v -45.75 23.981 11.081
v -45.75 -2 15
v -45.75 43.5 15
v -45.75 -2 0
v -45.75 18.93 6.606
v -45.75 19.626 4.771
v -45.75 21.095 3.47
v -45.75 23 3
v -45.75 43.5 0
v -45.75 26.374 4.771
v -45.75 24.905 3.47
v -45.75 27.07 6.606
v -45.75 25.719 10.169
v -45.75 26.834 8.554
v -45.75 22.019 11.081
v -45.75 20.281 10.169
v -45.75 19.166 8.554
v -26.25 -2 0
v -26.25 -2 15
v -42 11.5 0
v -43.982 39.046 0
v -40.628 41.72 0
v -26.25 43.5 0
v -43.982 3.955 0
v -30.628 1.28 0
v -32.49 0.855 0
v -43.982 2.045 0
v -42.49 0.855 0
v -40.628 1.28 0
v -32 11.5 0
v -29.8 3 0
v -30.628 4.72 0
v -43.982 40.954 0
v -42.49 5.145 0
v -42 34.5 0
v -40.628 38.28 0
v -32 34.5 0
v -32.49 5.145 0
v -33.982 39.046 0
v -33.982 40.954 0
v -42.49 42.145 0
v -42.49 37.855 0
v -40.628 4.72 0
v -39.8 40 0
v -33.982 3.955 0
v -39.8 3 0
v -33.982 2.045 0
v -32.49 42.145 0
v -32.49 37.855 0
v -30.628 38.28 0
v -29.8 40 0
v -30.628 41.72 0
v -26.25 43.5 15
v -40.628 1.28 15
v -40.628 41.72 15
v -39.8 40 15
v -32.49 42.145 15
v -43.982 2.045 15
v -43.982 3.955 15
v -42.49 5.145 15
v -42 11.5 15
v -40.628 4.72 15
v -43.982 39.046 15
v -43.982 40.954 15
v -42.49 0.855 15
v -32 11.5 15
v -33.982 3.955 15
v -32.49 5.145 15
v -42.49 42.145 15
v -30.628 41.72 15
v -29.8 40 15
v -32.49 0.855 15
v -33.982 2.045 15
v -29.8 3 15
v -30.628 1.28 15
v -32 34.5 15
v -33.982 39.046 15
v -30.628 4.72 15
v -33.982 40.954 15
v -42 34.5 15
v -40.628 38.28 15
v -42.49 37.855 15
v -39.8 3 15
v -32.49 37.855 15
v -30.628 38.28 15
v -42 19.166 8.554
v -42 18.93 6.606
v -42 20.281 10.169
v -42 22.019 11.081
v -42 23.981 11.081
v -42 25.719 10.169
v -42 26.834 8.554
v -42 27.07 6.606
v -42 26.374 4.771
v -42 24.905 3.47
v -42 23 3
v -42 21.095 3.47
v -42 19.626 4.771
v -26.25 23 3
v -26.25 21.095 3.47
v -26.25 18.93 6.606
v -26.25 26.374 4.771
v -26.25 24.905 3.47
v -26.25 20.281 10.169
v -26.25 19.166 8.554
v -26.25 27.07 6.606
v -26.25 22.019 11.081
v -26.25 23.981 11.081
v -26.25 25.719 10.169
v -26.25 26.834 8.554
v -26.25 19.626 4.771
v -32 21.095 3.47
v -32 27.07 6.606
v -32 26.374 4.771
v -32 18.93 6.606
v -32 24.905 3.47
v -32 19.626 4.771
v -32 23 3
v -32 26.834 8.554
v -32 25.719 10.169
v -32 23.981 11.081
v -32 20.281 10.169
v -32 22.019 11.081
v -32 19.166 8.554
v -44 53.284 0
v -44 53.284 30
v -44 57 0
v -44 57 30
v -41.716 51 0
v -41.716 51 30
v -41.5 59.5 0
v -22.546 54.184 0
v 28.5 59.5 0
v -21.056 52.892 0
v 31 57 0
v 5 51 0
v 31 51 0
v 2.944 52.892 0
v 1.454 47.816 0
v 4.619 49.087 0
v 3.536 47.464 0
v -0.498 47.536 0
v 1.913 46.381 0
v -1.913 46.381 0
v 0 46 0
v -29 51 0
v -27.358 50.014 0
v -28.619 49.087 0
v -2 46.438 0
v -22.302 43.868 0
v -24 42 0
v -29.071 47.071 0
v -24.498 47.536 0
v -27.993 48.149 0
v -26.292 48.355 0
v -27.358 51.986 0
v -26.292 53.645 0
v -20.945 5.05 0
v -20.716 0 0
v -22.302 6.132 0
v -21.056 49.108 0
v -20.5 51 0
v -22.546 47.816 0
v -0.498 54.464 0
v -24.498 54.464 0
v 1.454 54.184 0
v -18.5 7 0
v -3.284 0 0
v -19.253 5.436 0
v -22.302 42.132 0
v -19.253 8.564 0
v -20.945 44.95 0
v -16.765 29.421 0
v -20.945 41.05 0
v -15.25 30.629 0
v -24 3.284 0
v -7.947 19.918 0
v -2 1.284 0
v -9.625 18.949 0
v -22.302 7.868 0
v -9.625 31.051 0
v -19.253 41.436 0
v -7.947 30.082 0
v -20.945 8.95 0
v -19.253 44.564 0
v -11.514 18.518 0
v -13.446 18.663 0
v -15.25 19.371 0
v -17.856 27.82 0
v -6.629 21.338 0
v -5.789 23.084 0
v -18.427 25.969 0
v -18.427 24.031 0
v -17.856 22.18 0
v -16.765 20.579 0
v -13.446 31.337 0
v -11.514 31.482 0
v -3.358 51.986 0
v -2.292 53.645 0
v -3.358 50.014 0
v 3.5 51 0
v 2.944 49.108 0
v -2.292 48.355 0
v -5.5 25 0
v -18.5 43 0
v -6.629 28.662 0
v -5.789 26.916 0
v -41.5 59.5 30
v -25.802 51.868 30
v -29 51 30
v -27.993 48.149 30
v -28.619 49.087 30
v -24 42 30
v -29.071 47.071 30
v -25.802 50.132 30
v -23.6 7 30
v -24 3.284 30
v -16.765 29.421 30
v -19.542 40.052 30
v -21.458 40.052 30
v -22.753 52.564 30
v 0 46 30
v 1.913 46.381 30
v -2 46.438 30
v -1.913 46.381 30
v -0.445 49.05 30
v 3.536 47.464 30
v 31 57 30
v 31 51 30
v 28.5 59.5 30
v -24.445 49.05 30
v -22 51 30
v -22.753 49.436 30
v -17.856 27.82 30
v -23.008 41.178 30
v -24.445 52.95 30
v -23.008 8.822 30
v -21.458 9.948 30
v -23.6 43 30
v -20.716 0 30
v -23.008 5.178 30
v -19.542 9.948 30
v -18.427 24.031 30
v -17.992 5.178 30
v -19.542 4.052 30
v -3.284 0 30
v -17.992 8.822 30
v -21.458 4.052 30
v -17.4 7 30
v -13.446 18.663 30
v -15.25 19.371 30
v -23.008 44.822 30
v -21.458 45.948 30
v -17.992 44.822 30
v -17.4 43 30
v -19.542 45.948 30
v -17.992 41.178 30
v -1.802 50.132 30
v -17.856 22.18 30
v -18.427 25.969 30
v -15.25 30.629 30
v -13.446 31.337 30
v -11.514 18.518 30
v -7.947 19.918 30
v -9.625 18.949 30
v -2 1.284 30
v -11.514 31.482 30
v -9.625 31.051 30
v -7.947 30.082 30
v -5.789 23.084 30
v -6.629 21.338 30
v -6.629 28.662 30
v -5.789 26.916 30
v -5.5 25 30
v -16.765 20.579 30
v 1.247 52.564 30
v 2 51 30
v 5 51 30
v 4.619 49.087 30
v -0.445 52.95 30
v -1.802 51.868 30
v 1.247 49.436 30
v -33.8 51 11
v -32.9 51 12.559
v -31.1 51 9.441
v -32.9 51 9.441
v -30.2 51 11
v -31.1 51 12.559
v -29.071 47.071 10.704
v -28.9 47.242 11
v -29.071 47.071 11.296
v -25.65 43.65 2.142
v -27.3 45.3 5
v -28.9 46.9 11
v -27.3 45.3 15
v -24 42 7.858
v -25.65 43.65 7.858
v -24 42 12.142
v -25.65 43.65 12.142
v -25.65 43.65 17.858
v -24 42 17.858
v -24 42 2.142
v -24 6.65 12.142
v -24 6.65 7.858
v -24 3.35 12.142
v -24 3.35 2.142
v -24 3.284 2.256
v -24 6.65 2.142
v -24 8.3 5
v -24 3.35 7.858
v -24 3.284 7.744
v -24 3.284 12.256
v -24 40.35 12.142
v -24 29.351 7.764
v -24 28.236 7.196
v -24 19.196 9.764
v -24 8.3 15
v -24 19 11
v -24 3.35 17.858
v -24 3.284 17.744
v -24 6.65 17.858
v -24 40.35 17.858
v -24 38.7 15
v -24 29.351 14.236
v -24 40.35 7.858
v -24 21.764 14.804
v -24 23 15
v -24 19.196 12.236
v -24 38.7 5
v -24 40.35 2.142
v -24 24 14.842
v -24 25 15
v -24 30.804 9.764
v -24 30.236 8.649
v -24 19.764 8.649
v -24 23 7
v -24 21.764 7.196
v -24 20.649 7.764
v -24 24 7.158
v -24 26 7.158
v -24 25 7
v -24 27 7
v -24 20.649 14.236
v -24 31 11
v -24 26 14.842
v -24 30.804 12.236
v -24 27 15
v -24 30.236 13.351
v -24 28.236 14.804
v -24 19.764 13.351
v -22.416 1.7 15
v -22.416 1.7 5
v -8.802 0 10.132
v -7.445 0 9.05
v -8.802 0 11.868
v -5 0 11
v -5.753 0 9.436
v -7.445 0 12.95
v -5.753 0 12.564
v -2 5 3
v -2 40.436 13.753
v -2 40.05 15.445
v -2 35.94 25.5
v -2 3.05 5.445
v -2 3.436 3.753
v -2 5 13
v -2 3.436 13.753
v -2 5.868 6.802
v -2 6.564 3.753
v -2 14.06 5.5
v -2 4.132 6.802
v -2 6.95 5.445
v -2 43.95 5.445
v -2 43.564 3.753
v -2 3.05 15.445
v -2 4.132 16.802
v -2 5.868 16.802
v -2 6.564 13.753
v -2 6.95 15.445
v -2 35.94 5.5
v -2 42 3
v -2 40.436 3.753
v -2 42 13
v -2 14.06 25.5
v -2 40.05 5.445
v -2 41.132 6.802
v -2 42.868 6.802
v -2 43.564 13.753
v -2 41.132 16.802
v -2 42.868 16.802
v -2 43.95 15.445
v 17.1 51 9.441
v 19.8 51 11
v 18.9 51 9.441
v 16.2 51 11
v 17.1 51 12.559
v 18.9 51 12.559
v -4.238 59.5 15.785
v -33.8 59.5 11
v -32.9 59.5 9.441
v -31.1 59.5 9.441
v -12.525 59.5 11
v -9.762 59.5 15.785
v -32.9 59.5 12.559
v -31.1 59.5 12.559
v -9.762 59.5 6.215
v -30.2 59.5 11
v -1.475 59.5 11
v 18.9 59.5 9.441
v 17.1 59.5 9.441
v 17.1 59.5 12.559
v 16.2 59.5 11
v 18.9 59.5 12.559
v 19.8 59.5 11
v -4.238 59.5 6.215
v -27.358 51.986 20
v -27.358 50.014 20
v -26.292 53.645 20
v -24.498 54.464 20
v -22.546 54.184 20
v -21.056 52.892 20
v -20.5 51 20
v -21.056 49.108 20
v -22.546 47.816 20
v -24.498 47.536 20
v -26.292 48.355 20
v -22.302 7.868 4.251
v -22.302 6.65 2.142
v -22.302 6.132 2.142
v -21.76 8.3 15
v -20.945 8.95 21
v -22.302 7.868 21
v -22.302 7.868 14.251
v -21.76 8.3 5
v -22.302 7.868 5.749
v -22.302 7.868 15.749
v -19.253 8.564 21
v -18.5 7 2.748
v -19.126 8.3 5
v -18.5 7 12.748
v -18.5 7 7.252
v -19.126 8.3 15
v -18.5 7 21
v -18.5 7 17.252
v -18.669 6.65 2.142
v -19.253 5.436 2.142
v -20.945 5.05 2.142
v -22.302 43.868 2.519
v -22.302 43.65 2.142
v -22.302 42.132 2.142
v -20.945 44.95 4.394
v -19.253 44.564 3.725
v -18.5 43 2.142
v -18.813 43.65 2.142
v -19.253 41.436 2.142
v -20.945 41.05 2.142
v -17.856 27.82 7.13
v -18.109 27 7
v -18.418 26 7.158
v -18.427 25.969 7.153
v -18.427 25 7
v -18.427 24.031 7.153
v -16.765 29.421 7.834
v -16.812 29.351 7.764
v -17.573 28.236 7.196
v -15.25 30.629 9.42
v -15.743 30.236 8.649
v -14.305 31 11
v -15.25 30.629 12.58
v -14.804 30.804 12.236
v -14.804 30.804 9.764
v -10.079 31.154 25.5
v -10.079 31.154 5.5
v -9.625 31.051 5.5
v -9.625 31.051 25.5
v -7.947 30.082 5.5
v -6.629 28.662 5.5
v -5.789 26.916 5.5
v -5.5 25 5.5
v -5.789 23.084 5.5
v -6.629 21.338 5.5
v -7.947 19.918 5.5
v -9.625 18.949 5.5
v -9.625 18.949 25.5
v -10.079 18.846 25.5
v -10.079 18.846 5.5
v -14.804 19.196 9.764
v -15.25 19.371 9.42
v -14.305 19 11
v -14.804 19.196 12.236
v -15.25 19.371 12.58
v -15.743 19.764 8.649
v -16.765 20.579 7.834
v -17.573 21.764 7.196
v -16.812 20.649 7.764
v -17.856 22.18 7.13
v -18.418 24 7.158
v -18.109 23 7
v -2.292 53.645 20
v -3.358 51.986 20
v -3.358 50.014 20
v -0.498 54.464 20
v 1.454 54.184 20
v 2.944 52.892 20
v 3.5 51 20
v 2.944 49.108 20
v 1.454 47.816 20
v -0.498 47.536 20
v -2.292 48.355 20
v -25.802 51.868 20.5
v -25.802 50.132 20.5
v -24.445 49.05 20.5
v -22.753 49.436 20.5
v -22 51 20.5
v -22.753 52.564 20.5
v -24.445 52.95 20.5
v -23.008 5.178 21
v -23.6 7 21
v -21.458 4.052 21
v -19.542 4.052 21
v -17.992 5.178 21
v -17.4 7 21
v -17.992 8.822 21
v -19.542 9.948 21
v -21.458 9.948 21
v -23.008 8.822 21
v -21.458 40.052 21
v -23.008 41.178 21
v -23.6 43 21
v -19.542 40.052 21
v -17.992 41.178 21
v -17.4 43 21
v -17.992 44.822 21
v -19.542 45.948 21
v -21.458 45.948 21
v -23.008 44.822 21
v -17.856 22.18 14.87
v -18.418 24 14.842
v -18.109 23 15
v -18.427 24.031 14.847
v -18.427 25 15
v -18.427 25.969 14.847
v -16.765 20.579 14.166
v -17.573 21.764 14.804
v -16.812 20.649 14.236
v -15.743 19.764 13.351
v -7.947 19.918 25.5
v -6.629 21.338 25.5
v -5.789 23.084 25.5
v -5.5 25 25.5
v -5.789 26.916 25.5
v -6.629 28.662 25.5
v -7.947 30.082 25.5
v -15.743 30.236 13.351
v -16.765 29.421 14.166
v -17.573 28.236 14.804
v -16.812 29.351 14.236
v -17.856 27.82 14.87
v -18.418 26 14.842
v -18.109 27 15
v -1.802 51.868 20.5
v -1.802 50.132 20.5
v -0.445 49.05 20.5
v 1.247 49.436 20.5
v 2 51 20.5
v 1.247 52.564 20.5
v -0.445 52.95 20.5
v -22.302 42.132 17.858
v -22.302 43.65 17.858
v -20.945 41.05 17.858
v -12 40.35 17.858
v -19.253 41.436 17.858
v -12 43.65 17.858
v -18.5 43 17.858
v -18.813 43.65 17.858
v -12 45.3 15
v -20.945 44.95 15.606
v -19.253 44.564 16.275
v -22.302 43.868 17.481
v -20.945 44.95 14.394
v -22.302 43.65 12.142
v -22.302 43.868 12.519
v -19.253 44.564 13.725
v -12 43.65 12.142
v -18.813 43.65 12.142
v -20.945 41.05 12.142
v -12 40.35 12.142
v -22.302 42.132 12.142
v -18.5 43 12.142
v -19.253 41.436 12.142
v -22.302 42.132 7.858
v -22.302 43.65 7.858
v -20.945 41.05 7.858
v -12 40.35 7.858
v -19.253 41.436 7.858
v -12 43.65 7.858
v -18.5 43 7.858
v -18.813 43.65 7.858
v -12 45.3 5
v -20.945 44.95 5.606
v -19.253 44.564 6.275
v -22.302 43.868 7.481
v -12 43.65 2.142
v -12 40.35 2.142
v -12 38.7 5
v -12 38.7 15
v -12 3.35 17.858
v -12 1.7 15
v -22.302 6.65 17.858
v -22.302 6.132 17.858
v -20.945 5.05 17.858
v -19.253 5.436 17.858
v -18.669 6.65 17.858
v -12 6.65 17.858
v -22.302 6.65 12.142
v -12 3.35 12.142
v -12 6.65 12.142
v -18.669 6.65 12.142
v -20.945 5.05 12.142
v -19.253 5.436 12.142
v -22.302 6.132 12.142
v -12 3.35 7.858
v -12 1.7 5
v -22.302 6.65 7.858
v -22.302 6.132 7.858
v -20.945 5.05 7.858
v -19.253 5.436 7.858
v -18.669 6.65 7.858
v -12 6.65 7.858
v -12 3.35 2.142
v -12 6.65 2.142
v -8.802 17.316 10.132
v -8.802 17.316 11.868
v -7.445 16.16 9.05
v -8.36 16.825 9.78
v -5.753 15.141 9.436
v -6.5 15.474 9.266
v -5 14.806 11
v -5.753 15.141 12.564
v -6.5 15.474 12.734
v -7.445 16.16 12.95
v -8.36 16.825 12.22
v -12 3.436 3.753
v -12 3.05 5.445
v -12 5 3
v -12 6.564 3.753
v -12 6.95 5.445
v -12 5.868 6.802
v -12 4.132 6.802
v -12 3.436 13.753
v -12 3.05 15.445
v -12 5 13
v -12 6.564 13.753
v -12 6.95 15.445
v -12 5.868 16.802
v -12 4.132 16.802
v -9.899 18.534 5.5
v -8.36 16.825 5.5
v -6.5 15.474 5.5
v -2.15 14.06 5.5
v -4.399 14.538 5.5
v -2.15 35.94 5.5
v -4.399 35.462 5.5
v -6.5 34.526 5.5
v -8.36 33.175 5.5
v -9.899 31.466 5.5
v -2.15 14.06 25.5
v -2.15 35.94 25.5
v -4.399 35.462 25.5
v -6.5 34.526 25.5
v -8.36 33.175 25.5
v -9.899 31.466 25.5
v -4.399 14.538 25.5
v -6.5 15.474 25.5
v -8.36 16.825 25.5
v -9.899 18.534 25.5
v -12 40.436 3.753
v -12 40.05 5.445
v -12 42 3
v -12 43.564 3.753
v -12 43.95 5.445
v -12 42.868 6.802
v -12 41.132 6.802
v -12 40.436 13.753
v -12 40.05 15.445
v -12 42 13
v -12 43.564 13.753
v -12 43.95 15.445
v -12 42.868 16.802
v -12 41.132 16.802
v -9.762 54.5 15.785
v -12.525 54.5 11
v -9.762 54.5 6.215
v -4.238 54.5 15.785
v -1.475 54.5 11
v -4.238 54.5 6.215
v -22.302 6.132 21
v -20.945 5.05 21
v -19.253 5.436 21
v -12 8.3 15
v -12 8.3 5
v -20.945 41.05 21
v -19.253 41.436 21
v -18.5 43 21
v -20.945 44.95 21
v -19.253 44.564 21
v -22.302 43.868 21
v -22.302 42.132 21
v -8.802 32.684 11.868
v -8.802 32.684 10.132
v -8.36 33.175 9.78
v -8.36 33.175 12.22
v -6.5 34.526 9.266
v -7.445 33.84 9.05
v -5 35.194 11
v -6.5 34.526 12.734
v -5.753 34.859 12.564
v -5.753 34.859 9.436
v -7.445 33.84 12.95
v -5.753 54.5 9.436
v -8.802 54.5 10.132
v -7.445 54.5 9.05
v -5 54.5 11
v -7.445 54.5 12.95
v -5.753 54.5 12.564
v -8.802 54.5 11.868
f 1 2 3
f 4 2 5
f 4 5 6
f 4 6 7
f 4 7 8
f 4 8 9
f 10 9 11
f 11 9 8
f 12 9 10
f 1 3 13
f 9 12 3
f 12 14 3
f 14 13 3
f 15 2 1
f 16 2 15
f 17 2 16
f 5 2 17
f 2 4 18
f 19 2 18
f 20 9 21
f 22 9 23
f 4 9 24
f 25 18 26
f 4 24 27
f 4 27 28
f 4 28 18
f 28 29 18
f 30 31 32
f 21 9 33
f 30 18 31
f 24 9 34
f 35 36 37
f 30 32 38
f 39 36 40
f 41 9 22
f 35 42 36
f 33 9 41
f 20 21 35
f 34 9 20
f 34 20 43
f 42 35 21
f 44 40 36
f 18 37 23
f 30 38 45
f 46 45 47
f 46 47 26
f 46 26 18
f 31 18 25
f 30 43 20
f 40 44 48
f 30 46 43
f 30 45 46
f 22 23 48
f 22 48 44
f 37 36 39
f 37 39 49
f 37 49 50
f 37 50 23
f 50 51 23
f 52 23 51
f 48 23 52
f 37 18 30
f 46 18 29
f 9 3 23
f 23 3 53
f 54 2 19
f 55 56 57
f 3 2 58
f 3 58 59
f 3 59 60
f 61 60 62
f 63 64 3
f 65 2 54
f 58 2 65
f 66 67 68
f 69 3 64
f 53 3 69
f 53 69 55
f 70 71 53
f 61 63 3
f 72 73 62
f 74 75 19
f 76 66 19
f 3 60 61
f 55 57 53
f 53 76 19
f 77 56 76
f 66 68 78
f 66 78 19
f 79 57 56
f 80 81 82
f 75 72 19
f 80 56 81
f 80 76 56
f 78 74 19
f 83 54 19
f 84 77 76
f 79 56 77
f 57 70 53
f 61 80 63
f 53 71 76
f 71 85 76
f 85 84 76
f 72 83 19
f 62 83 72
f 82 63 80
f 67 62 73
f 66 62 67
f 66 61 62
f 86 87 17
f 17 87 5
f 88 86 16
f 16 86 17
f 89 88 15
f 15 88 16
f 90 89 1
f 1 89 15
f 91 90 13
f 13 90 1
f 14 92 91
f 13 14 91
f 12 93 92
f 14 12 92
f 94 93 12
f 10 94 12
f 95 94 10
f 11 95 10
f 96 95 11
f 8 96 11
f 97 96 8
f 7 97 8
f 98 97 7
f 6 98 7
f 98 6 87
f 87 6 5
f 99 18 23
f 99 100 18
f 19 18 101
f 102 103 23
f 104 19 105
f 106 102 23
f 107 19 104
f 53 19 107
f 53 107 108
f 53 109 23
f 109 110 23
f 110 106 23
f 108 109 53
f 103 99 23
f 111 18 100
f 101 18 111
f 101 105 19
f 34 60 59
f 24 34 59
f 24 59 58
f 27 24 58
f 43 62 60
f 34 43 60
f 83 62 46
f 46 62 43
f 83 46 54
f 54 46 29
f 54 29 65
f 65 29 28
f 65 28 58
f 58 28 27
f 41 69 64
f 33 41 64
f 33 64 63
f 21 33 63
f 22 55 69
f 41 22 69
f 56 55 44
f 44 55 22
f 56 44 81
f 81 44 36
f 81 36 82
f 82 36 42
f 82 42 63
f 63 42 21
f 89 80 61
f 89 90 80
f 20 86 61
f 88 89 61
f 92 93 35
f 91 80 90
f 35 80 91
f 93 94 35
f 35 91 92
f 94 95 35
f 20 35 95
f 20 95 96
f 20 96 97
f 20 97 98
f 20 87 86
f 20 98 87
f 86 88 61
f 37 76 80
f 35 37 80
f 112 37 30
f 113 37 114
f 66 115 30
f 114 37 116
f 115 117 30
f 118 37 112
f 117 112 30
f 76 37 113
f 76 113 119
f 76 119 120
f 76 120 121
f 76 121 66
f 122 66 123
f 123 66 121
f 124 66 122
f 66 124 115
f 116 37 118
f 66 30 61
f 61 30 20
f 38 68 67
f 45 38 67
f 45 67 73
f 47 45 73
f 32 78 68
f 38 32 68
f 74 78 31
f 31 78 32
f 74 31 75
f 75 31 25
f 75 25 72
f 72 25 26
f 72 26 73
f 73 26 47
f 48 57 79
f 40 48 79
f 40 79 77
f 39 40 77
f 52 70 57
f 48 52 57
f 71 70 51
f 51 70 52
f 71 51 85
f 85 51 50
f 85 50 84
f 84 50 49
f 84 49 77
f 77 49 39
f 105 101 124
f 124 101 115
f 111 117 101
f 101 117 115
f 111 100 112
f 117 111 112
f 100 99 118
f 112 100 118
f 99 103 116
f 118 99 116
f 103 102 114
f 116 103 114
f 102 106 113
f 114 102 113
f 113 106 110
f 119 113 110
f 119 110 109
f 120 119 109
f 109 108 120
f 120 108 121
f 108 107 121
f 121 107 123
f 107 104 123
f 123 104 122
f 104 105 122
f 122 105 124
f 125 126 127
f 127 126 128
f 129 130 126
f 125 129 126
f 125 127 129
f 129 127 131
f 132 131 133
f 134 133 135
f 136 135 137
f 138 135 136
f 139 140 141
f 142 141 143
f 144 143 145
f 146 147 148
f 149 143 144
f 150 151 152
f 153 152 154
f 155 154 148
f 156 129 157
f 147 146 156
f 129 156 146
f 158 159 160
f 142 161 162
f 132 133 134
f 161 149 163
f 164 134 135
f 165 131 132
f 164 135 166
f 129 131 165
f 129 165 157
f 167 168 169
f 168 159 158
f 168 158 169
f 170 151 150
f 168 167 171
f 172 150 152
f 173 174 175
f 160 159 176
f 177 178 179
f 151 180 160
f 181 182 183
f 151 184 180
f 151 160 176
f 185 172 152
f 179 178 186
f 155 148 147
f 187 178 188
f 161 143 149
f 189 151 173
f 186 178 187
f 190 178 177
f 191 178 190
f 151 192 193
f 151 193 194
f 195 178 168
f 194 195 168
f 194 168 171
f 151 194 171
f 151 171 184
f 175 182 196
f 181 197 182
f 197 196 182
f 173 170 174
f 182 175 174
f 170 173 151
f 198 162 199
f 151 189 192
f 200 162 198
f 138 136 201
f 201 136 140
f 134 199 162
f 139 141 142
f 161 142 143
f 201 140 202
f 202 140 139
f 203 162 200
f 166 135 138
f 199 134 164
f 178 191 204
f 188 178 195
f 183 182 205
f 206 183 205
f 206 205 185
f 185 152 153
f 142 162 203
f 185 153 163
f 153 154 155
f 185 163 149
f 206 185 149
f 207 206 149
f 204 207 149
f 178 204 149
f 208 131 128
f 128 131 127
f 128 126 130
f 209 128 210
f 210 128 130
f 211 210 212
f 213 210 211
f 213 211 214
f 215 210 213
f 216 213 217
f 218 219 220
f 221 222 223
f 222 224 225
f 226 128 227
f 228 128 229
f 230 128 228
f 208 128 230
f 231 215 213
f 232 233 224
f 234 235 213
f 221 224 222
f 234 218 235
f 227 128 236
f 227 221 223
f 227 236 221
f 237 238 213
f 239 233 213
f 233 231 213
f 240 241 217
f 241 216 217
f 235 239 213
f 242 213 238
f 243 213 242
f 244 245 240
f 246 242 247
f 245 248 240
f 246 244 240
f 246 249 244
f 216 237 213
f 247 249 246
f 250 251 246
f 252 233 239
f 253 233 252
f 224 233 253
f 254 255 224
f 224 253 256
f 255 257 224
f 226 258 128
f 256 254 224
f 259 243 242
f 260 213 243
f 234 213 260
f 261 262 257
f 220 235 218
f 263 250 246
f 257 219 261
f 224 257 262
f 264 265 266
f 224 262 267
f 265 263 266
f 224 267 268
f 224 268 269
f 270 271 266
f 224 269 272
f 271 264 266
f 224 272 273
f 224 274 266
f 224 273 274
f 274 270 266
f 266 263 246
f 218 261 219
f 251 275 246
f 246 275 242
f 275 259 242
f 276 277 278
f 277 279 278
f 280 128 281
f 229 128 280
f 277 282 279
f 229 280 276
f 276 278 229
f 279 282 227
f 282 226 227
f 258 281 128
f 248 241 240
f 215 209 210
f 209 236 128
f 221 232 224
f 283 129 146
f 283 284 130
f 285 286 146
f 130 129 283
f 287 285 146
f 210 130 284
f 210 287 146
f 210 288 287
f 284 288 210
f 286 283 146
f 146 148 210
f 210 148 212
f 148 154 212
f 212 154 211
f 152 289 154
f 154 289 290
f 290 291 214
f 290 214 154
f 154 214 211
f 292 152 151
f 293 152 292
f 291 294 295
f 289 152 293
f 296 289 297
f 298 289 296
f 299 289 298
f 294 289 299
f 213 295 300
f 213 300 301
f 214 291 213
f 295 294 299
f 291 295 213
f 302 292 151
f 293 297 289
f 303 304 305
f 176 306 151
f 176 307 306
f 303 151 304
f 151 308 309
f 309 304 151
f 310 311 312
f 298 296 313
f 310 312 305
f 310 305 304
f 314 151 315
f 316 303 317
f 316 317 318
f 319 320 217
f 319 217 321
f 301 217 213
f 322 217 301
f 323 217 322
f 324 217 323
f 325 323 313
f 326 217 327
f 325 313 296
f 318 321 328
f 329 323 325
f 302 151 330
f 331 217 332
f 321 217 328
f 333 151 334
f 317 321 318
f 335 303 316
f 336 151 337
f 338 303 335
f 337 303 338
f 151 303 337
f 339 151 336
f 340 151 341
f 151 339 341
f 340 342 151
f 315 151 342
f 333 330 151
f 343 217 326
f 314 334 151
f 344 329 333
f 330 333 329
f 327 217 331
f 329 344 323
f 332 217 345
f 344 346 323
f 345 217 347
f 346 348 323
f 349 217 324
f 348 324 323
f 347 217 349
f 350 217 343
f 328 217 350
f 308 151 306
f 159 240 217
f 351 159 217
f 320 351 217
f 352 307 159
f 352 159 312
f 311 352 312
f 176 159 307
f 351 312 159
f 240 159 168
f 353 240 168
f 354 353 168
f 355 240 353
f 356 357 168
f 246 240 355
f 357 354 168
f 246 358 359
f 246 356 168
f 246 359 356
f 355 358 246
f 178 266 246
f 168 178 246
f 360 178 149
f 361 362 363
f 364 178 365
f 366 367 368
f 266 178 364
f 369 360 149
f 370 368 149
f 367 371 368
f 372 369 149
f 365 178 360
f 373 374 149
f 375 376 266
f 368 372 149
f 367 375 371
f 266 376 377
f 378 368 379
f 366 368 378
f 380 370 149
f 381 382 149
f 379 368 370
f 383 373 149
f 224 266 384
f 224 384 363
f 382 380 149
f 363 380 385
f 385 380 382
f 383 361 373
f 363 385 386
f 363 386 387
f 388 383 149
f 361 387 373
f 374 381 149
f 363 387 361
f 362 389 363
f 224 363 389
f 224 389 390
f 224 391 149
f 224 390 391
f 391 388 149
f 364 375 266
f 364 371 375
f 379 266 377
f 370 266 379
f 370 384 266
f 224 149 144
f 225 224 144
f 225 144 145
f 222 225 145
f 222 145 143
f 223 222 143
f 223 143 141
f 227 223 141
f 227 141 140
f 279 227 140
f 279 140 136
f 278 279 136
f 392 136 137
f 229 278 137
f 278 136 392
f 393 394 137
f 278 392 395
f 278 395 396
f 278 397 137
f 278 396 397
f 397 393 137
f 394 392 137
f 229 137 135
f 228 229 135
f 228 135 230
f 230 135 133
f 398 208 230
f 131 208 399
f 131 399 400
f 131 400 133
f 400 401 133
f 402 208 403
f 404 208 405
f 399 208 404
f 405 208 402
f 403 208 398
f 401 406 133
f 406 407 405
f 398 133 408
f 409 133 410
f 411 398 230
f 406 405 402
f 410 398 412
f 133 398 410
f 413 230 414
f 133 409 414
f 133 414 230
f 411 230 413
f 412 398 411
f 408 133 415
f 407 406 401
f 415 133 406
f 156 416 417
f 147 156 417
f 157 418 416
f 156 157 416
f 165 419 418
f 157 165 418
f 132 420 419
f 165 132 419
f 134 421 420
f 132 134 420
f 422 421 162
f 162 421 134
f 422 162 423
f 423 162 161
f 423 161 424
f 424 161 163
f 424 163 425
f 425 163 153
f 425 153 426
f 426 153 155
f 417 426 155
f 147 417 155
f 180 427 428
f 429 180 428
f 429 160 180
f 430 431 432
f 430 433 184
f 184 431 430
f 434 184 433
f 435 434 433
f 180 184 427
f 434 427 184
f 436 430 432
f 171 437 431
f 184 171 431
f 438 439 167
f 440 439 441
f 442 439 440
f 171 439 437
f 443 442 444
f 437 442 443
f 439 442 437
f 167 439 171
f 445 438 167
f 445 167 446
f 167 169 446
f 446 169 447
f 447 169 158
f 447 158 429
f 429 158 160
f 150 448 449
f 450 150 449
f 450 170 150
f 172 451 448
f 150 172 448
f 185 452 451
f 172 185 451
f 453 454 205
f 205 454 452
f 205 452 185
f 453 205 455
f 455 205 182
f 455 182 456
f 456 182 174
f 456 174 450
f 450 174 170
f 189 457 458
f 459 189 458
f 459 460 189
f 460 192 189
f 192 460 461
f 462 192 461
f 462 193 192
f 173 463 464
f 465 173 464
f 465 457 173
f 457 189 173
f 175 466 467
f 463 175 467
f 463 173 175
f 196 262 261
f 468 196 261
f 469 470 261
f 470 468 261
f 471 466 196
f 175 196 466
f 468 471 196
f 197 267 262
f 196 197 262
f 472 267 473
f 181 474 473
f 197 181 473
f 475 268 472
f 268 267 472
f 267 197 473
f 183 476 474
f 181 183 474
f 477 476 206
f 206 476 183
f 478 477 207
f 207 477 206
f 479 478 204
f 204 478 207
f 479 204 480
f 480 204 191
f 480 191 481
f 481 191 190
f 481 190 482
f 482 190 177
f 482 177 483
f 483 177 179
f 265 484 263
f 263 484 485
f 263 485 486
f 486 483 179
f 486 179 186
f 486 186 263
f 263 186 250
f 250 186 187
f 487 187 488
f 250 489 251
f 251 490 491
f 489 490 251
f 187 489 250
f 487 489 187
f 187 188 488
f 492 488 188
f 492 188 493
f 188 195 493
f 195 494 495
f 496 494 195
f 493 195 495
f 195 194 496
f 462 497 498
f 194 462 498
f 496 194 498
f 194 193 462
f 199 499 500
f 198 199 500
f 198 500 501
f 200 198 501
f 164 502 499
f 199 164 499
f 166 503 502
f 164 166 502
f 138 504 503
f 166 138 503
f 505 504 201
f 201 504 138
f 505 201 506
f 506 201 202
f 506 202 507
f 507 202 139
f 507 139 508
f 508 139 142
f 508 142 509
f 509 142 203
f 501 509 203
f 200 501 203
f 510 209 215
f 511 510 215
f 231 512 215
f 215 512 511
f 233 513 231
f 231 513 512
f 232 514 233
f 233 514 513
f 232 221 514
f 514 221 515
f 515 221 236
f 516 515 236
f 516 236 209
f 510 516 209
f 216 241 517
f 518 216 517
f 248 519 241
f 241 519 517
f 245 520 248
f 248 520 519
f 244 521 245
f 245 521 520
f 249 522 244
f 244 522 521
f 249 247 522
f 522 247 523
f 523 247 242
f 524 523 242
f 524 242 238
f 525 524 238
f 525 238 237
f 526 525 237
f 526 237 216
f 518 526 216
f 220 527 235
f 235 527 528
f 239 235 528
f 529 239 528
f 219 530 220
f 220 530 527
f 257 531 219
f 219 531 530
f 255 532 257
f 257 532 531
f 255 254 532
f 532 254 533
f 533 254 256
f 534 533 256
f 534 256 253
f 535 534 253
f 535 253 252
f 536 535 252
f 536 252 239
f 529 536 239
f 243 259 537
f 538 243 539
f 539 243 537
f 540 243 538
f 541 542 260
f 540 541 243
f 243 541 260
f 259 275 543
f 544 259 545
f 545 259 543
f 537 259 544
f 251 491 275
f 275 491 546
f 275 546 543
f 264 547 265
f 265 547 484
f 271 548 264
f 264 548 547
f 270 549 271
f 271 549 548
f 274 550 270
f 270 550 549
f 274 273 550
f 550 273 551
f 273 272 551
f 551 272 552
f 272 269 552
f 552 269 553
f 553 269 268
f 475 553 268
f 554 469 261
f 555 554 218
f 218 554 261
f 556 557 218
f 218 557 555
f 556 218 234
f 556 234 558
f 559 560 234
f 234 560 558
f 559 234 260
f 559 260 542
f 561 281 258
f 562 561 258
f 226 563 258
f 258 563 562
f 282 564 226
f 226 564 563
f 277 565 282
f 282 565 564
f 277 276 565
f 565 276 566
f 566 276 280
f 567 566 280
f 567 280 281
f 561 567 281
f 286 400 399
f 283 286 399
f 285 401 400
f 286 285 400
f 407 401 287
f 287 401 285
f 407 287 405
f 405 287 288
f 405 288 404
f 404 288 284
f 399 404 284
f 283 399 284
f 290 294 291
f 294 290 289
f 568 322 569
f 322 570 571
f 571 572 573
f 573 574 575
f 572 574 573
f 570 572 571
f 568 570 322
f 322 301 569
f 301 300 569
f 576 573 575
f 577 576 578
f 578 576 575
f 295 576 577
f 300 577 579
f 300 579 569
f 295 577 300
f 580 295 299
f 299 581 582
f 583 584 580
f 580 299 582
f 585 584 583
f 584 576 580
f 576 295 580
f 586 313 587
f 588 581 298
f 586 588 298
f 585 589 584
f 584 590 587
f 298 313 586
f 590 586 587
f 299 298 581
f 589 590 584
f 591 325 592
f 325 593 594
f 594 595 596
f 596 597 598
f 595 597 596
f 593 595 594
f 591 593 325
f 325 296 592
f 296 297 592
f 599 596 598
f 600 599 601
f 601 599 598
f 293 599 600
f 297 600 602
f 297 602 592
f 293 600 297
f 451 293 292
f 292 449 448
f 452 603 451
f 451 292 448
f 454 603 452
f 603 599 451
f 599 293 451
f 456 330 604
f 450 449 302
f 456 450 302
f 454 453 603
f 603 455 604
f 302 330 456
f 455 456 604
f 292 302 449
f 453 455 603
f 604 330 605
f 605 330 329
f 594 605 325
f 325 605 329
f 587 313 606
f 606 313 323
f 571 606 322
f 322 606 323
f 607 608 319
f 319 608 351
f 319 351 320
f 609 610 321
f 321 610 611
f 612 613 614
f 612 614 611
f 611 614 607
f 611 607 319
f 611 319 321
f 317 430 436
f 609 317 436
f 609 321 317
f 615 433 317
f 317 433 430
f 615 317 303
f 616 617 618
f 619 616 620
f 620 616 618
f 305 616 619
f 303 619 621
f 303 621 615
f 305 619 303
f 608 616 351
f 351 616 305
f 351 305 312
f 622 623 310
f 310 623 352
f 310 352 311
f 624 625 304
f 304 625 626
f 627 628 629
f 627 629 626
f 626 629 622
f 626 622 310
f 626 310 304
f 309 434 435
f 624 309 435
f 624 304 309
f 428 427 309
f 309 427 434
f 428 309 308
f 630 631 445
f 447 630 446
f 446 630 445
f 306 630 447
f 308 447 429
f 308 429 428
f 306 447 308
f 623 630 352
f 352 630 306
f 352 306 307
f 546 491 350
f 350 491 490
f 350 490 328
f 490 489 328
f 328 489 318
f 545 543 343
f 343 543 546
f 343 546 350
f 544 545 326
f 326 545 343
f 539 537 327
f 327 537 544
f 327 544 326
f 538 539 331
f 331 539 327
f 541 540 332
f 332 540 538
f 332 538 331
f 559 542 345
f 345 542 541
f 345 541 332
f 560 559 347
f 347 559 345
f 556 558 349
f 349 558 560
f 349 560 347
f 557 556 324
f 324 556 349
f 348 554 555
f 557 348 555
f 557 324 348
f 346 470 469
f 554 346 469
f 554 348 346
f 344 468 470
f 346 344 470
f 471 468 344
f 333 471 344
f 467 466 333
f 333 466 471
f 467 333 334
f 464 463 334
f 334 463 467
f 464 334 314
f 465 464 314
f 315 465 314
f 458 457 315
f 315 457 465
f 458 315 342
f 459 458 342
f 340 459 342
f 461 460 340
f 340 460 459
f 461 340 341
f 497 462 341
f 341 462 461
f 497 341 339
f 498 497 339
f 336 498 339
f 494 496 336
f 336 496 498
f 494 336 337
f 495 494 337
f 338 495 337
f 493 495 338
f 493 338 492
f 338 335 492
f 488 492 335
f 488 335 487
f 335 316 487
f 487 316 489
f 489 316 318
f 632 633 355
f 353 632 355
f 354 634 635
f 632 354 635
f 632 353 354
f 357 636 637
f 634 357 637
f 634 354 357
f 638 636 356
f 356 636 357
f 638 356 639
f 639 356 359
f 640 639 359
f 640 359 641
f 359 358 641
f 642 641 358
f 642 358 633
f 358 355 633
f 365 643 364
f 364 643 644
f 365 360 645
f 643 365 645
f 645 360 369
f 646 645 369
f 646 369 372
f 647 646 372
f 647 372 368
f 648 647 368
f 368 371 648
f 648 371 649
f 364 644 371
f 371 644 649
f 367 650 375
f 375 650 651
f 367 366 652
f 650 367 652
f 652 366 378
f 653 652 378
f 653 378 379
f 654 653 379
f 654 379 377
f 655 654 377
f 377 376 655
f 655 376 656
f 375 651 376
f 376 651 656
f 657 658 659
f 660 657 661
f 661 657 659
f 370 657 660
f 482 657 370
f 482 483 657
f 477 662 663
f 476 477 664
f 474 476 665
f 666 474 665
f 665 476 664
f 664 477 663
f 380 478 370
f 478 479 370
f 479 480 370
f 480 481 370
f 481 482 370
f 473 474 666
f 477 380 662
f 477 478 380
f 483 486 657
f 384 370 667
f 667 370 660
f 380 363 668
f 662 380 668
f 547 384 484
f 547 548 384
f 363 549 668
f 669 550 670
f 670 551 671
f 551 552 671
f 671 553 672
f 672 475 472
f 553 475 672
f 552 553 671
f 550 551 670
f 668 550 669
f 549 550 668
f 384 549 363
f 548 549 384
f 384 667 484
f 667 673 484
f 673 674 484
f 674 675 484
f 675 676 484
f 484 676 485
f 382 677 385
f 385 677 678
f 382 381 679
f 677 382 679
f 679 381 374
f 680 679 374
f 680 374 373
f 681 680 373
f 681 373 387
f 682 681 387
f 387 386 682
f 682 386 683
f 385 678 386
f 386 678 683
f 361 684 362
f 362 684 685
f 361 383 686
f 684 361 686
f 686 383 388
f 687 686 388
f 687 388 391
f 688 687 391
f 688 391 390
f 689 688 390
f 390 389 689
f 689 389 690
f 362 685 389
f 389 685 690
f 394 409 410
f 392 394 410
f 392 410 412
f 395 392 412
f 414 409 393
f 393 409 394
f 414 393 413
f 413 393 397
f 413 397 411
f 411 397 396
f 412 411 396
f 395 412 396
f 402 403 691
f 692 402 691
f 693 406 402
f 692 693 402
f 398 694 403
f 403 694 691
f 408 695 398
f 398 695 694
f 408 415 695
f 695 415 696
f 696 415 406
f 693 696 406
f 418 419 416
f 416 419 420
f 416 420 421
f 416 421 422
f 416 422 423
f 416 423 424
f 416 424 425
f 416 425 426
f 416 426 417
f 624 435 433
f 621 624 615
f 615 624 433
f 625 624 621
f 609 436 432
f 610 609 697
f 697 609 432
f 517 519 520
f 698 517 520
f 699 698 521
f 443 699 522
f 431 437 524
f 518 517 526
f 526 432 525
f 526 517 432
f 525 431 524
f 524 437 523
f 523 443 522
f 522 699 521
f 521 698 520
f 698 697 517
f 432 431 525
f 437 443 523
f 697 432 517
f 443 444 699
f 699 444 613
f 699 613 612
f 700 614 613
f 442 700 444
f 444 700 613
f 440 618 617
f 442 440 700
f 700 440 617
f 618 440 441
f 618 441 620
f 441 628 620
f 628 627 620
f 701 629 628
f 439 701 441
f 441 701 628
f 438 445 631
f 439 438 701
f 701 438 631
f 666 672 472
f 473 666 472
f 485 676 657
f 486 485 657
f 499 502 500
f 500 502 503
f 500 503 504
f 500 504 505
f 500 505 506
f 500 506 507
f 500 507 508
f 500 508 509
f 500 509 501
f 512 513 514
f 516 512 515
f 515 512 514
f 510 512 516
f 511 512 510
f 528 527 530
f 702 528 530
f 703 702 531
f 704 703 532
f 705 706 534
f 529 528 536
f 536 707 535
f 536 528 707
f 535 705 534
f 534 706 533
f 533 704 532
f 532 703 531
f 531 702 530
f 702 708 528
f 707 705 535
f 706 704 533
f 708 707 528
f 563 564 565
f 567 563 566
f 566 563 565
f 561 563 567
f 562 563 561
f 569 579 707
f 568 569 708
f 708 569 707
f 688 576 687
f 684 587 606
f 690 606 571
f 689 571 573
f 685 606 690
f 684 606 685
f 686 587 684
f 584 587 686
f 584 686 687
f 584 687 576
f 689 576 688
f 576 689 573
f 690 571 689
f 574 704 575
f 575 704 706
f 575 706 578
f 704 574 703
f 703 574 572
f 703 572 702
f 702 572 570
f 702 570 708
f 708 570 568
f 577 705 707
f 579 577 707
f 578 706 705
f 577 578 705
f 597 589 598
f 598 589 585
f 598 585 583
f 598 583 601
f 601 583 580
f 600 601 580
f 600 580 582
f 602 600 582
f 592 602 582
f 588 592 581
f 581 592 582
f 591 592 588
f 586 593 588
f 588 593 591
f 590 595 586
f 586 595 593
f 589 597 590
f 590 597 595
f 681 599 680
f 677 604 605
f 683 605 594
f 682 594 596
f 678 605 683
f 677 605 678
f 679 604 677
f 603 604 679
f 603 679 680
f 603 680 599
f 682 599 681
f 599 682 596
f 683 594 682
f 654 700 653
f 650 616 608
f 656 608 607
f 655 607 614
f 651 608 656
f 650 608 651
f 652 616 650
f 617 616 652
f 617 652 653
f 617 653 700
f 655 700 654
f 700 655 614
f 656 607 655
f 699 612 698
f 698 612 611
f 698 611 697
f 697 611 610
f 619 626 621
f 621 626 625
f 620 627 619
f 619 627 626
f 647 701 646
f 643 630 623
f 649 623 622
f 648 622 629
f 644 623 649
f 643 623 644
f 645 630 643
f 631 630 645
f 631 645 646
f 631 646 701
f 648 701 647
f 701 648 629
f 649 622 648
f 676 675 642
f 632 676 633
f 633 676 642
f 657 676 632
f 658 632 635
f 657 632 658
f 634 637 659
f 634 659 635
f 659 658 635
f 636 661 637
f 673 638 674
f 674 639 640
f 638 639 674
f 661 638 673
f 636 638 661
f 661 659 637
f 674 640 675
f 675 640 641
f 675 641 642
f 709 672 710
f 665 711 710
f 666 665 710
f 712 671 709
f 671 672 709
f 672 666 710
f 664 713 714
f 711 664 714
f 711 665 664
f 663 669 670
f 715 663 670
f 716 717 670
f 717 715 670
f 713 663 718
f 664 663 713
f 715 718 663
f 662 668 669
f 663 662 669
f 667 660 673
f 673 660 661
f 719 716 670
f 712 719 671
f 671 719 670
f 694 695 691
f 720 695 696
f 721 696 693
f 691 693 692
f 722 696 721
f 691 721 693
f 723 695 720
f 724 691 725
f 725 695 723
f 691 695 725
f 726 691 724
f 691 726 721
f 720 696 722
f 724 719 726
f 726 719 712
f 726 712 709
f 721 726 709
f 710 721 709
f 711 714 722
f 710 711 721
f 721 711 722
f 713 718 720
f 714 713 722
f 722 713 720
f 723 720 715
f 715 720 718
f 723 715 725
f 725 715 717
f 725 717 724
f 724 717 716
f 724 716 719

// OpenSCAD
// file: ../configuration.scad
x_rod_distance = 45;

// Select your belt type ******************************************************

//T2.5
belt_tooth_distance = 2.5;
belt_tooth_ratio = 0.5;

//T5 (strongly discouraged)
//belt_tooth_distance = 5;
//belt_tooth_ratio = 0.75;

//HTD3
//belt_tooth_distance = 3;
//belt_tooth_ratio = 0.75;

//MXL
//belt_tooth_distance = 2.032;
//belt_tooth_ratio = 0.64;

// Select your hot-end mount ******************************************************

// 0 = none; 1 = groove-mount (J-head/MakerGear etc.)
hotend_mount = 1;

hotend_groovemount_depth = 5;
hotend_groovemount_diameter = 11.05;
// main file
// PRUSA iteration3
// Compact extruder
// GNU GPL v3
// Josef Průša <iam@josefprusa.cz> and contributors
// http://www.reprap.org/wiki/Prusa_Mendel
// http://prusamendel.org

include <../configuration.scad>



module motor_dummy(){
	translate([-22,-22,-5]) %cube([44,44,5]);
	translate([18,18,-5]) %cylinder(r=2, h=24);
	translate([18,-18,-5]) %cylinder(r=2, h=24);
	translate([-18,18,-5]) %cylinder(r=2, h=24);
	translate([-18,-18,-5]) %cylinder(r=2, h=24);
	translate([-22+2.5+10,0,-5]) %cylinder(r=2.5, h=7);
	
}

module extruder_base(){
 // Main body
 translate([-1,-2,0]) cube([22,56,30]);
 // Extruder plate mount
 if (hotend_mount == 1) { // groove-mount
  translate([-21,49,0]) cube([75,5 + hotend_groovemount_depth - 1.5,30]);
 } else {
  translate([-16,49,0]) cube([55,5,30]);
 }
 
 // Carriage mount cylinders
 translate([11,25,0]){
  translate([-12,24,0]) cylinder(r=5, h=30);
  translate([12,24,0]) cylinder(r=5, h=30);
 }

 // Smoother join
 translate([1,38,0]) rotate([0,0,45])  cube([10,10,30]);
}

module extruder_holes(){
 translate([11,25,0]){ // Translate to center of the main block
  // Main shaft opening
  translate([0,-2,-1]) cylinder(r=6.5, h=36);

  // Lower motor mount hole
  translate([-8.5,18-2,-1]) cylinder(r=2, h=35);
  translate([-8.5,18-2,21]) cylinder(r=3.1, h=35);
  // Upper motor mount hole
  translate([-8.5,-18-2,-1]) cylinder(r=2, h=35);
  translate([-8.5,-18-2,21]) cylinder(r=3.1, h=35);
  // Idler motor mount hole
  translate([-8.5+36,18-2,-1]) cylinder(r=2, h=35);
  translate([-8.5+36,18-2,21]) cylinder(r=3.1, h=35);

  // Carriage mount right screw head hole
  translate([-12,24,-3]) cylinder(r=3.5, h=23);
  // Carriage mount left screw head hole
  translate([12,24,-3]) cylinder(r=3.5, h=23);
  // Carriage mount right screw hole
  translate([-12,24,20.5]) cylinder(r=2, h=23);
  // Carriage mount left screw head hole
  translate([12,24,20.5]) cylinder(r=2, h=23);
  // Idler bearing cutout
  translate([11,0-2,-4.5+10]) cylinder(r=11, h=20);
 }
 // Filament path
 translate([1.5+11+3.5,65,11]) rotate([90,0,0]) cylinder(r=2, h=70);
 if (hotend_mount == 1) {
  // Hole for hotend
  translate([1.5+11+3.5,65,11]) rotate([90,0,0]) cylinder(r=hotend_groovemount_diameter/2, h=12.5, $fn=6);
 }
 // Hole for drive gear check
 translate([1.5+11+3.5-30,25,11]) rotate([90,0,90]) cylinder(r=4, h=70, $fn=20);
 translate([1.5+11+3.5-30,23,11]) rotate([90,0,90]) cylinder(r=4, h=70, $fn=20);
 translate([1.5+11+3.5-30,21,11]) rotate([90,0,90]) cylinder(r=4, h=70, $fn=20);

 // Left extruder plate mounting hole
 translate([1.5+11+3.5+25,65,11]) rotate([90,0,0]) cylinder(r=1.8, h=70);
 translate([1.5+11+3.5+25,47,11]) rotate([90,0,0]) cylinder(r=3.1, h=70, $fn=6);
 // Right extruder plate mounting hole
 translate([1.5+11+3.5-25,65,11]) rotate([90,0,0]) cylinder(r=1.8, h=70);
 translate([1.5+11+3.5-25,47,11]) rotate([90,0,0]) cylinder(r=3.1, h=70, $fn=6);

  // Idler mounting holes
  translate([11,25,10]){
   // Nut traps
   translate([-30,15,-5]) rotate([0,90,0]) rotate([0,0,30]) cylinder(r=3.3, h=30, $fn=6);
   translate([-30,-22,-5]) rotate([0,90,0]) rotate([0,0,30]) cylinder(r=3.3, h=30, $fn=6);
   translate([-30,15,5]) rotate([0,90,0]) rotate([0,0,30]) cylinder(r=3.3, h=30, $fn=6);
   translate([-30,-22,5]) rotate([0,90,0]) rotate([0,0,30]) cylinder(r=3.3, h=30, $fn=6);
   // Screws
   translate([-30,-22,-5]) rotate([0,90,0]) cylinder(r=2, h=70);
   translate([-30,-22,5]) rotate([0,90,0]) cylinder(r=2, h=70);
   translate([-30,15,-5]) rotate([0,90,0]) cylinder(r=2, h=70);
   translate([-30,15,5]) rotate([0,90,0]) cylinder(r=2, h=70);
	}

 translate([63,46,-1]) rotate([0,0,45]) cube([20,20,36]);
 translate([46,13,-1]) rotate([0,0,45]) cube([20,20,36]);
 translate([-30,46,-1]) rotate([0,0,45]) cube([20,20,36]);
 translate([-22,24,-1]) rotate([0,0,45]) cube([20,20,36]);
 translate([-8,-20,-1]) rotate([0,0,45]) cube([20,20,36]);
 translate([30,-20,-1]) rotate([0,0,45]) cube([20,20,36]);
}

module extruder_idler_base(){
 translate([1.25,0,0]) cube([19.5,45.5,8+7]);
	
}

module extruder_idler_holes(){
 translate([10,25,0]){
  // Main cutout
  cube([10,23,37], center= true);
  // Idler shaft
  translate([-12,0,4.1+3])rotate([0,90,0])cylinder(r=4.1, h=24);
  // Screw holes
  translate([5,-20,-1])cylinder(r=2.2, h=24);
  translate([-5,-20,-1])cylinder(r=2.2, h=24);
  translate([5,17,-1])cylinder(r=2.2, h=24);
  translate([-5,17,-1])cylinder(r=2.2, h=24);
 }
}


// Idler final part
module idler(){
 difference(){
  extruder_idler_base();
  extruder_idler_holes();
 }
}

//translate([12,0,1]) rotate([0,-90,0]) idler();
translate([-47,-2,0])  idler();
// Extruder final part
module extruder(){
 translate([-23,2,0])difference(){
  extruder_base();
  extruder_holes();
 }
}

extruder();
translate([-2.5,25,0]) motor_dummy();
